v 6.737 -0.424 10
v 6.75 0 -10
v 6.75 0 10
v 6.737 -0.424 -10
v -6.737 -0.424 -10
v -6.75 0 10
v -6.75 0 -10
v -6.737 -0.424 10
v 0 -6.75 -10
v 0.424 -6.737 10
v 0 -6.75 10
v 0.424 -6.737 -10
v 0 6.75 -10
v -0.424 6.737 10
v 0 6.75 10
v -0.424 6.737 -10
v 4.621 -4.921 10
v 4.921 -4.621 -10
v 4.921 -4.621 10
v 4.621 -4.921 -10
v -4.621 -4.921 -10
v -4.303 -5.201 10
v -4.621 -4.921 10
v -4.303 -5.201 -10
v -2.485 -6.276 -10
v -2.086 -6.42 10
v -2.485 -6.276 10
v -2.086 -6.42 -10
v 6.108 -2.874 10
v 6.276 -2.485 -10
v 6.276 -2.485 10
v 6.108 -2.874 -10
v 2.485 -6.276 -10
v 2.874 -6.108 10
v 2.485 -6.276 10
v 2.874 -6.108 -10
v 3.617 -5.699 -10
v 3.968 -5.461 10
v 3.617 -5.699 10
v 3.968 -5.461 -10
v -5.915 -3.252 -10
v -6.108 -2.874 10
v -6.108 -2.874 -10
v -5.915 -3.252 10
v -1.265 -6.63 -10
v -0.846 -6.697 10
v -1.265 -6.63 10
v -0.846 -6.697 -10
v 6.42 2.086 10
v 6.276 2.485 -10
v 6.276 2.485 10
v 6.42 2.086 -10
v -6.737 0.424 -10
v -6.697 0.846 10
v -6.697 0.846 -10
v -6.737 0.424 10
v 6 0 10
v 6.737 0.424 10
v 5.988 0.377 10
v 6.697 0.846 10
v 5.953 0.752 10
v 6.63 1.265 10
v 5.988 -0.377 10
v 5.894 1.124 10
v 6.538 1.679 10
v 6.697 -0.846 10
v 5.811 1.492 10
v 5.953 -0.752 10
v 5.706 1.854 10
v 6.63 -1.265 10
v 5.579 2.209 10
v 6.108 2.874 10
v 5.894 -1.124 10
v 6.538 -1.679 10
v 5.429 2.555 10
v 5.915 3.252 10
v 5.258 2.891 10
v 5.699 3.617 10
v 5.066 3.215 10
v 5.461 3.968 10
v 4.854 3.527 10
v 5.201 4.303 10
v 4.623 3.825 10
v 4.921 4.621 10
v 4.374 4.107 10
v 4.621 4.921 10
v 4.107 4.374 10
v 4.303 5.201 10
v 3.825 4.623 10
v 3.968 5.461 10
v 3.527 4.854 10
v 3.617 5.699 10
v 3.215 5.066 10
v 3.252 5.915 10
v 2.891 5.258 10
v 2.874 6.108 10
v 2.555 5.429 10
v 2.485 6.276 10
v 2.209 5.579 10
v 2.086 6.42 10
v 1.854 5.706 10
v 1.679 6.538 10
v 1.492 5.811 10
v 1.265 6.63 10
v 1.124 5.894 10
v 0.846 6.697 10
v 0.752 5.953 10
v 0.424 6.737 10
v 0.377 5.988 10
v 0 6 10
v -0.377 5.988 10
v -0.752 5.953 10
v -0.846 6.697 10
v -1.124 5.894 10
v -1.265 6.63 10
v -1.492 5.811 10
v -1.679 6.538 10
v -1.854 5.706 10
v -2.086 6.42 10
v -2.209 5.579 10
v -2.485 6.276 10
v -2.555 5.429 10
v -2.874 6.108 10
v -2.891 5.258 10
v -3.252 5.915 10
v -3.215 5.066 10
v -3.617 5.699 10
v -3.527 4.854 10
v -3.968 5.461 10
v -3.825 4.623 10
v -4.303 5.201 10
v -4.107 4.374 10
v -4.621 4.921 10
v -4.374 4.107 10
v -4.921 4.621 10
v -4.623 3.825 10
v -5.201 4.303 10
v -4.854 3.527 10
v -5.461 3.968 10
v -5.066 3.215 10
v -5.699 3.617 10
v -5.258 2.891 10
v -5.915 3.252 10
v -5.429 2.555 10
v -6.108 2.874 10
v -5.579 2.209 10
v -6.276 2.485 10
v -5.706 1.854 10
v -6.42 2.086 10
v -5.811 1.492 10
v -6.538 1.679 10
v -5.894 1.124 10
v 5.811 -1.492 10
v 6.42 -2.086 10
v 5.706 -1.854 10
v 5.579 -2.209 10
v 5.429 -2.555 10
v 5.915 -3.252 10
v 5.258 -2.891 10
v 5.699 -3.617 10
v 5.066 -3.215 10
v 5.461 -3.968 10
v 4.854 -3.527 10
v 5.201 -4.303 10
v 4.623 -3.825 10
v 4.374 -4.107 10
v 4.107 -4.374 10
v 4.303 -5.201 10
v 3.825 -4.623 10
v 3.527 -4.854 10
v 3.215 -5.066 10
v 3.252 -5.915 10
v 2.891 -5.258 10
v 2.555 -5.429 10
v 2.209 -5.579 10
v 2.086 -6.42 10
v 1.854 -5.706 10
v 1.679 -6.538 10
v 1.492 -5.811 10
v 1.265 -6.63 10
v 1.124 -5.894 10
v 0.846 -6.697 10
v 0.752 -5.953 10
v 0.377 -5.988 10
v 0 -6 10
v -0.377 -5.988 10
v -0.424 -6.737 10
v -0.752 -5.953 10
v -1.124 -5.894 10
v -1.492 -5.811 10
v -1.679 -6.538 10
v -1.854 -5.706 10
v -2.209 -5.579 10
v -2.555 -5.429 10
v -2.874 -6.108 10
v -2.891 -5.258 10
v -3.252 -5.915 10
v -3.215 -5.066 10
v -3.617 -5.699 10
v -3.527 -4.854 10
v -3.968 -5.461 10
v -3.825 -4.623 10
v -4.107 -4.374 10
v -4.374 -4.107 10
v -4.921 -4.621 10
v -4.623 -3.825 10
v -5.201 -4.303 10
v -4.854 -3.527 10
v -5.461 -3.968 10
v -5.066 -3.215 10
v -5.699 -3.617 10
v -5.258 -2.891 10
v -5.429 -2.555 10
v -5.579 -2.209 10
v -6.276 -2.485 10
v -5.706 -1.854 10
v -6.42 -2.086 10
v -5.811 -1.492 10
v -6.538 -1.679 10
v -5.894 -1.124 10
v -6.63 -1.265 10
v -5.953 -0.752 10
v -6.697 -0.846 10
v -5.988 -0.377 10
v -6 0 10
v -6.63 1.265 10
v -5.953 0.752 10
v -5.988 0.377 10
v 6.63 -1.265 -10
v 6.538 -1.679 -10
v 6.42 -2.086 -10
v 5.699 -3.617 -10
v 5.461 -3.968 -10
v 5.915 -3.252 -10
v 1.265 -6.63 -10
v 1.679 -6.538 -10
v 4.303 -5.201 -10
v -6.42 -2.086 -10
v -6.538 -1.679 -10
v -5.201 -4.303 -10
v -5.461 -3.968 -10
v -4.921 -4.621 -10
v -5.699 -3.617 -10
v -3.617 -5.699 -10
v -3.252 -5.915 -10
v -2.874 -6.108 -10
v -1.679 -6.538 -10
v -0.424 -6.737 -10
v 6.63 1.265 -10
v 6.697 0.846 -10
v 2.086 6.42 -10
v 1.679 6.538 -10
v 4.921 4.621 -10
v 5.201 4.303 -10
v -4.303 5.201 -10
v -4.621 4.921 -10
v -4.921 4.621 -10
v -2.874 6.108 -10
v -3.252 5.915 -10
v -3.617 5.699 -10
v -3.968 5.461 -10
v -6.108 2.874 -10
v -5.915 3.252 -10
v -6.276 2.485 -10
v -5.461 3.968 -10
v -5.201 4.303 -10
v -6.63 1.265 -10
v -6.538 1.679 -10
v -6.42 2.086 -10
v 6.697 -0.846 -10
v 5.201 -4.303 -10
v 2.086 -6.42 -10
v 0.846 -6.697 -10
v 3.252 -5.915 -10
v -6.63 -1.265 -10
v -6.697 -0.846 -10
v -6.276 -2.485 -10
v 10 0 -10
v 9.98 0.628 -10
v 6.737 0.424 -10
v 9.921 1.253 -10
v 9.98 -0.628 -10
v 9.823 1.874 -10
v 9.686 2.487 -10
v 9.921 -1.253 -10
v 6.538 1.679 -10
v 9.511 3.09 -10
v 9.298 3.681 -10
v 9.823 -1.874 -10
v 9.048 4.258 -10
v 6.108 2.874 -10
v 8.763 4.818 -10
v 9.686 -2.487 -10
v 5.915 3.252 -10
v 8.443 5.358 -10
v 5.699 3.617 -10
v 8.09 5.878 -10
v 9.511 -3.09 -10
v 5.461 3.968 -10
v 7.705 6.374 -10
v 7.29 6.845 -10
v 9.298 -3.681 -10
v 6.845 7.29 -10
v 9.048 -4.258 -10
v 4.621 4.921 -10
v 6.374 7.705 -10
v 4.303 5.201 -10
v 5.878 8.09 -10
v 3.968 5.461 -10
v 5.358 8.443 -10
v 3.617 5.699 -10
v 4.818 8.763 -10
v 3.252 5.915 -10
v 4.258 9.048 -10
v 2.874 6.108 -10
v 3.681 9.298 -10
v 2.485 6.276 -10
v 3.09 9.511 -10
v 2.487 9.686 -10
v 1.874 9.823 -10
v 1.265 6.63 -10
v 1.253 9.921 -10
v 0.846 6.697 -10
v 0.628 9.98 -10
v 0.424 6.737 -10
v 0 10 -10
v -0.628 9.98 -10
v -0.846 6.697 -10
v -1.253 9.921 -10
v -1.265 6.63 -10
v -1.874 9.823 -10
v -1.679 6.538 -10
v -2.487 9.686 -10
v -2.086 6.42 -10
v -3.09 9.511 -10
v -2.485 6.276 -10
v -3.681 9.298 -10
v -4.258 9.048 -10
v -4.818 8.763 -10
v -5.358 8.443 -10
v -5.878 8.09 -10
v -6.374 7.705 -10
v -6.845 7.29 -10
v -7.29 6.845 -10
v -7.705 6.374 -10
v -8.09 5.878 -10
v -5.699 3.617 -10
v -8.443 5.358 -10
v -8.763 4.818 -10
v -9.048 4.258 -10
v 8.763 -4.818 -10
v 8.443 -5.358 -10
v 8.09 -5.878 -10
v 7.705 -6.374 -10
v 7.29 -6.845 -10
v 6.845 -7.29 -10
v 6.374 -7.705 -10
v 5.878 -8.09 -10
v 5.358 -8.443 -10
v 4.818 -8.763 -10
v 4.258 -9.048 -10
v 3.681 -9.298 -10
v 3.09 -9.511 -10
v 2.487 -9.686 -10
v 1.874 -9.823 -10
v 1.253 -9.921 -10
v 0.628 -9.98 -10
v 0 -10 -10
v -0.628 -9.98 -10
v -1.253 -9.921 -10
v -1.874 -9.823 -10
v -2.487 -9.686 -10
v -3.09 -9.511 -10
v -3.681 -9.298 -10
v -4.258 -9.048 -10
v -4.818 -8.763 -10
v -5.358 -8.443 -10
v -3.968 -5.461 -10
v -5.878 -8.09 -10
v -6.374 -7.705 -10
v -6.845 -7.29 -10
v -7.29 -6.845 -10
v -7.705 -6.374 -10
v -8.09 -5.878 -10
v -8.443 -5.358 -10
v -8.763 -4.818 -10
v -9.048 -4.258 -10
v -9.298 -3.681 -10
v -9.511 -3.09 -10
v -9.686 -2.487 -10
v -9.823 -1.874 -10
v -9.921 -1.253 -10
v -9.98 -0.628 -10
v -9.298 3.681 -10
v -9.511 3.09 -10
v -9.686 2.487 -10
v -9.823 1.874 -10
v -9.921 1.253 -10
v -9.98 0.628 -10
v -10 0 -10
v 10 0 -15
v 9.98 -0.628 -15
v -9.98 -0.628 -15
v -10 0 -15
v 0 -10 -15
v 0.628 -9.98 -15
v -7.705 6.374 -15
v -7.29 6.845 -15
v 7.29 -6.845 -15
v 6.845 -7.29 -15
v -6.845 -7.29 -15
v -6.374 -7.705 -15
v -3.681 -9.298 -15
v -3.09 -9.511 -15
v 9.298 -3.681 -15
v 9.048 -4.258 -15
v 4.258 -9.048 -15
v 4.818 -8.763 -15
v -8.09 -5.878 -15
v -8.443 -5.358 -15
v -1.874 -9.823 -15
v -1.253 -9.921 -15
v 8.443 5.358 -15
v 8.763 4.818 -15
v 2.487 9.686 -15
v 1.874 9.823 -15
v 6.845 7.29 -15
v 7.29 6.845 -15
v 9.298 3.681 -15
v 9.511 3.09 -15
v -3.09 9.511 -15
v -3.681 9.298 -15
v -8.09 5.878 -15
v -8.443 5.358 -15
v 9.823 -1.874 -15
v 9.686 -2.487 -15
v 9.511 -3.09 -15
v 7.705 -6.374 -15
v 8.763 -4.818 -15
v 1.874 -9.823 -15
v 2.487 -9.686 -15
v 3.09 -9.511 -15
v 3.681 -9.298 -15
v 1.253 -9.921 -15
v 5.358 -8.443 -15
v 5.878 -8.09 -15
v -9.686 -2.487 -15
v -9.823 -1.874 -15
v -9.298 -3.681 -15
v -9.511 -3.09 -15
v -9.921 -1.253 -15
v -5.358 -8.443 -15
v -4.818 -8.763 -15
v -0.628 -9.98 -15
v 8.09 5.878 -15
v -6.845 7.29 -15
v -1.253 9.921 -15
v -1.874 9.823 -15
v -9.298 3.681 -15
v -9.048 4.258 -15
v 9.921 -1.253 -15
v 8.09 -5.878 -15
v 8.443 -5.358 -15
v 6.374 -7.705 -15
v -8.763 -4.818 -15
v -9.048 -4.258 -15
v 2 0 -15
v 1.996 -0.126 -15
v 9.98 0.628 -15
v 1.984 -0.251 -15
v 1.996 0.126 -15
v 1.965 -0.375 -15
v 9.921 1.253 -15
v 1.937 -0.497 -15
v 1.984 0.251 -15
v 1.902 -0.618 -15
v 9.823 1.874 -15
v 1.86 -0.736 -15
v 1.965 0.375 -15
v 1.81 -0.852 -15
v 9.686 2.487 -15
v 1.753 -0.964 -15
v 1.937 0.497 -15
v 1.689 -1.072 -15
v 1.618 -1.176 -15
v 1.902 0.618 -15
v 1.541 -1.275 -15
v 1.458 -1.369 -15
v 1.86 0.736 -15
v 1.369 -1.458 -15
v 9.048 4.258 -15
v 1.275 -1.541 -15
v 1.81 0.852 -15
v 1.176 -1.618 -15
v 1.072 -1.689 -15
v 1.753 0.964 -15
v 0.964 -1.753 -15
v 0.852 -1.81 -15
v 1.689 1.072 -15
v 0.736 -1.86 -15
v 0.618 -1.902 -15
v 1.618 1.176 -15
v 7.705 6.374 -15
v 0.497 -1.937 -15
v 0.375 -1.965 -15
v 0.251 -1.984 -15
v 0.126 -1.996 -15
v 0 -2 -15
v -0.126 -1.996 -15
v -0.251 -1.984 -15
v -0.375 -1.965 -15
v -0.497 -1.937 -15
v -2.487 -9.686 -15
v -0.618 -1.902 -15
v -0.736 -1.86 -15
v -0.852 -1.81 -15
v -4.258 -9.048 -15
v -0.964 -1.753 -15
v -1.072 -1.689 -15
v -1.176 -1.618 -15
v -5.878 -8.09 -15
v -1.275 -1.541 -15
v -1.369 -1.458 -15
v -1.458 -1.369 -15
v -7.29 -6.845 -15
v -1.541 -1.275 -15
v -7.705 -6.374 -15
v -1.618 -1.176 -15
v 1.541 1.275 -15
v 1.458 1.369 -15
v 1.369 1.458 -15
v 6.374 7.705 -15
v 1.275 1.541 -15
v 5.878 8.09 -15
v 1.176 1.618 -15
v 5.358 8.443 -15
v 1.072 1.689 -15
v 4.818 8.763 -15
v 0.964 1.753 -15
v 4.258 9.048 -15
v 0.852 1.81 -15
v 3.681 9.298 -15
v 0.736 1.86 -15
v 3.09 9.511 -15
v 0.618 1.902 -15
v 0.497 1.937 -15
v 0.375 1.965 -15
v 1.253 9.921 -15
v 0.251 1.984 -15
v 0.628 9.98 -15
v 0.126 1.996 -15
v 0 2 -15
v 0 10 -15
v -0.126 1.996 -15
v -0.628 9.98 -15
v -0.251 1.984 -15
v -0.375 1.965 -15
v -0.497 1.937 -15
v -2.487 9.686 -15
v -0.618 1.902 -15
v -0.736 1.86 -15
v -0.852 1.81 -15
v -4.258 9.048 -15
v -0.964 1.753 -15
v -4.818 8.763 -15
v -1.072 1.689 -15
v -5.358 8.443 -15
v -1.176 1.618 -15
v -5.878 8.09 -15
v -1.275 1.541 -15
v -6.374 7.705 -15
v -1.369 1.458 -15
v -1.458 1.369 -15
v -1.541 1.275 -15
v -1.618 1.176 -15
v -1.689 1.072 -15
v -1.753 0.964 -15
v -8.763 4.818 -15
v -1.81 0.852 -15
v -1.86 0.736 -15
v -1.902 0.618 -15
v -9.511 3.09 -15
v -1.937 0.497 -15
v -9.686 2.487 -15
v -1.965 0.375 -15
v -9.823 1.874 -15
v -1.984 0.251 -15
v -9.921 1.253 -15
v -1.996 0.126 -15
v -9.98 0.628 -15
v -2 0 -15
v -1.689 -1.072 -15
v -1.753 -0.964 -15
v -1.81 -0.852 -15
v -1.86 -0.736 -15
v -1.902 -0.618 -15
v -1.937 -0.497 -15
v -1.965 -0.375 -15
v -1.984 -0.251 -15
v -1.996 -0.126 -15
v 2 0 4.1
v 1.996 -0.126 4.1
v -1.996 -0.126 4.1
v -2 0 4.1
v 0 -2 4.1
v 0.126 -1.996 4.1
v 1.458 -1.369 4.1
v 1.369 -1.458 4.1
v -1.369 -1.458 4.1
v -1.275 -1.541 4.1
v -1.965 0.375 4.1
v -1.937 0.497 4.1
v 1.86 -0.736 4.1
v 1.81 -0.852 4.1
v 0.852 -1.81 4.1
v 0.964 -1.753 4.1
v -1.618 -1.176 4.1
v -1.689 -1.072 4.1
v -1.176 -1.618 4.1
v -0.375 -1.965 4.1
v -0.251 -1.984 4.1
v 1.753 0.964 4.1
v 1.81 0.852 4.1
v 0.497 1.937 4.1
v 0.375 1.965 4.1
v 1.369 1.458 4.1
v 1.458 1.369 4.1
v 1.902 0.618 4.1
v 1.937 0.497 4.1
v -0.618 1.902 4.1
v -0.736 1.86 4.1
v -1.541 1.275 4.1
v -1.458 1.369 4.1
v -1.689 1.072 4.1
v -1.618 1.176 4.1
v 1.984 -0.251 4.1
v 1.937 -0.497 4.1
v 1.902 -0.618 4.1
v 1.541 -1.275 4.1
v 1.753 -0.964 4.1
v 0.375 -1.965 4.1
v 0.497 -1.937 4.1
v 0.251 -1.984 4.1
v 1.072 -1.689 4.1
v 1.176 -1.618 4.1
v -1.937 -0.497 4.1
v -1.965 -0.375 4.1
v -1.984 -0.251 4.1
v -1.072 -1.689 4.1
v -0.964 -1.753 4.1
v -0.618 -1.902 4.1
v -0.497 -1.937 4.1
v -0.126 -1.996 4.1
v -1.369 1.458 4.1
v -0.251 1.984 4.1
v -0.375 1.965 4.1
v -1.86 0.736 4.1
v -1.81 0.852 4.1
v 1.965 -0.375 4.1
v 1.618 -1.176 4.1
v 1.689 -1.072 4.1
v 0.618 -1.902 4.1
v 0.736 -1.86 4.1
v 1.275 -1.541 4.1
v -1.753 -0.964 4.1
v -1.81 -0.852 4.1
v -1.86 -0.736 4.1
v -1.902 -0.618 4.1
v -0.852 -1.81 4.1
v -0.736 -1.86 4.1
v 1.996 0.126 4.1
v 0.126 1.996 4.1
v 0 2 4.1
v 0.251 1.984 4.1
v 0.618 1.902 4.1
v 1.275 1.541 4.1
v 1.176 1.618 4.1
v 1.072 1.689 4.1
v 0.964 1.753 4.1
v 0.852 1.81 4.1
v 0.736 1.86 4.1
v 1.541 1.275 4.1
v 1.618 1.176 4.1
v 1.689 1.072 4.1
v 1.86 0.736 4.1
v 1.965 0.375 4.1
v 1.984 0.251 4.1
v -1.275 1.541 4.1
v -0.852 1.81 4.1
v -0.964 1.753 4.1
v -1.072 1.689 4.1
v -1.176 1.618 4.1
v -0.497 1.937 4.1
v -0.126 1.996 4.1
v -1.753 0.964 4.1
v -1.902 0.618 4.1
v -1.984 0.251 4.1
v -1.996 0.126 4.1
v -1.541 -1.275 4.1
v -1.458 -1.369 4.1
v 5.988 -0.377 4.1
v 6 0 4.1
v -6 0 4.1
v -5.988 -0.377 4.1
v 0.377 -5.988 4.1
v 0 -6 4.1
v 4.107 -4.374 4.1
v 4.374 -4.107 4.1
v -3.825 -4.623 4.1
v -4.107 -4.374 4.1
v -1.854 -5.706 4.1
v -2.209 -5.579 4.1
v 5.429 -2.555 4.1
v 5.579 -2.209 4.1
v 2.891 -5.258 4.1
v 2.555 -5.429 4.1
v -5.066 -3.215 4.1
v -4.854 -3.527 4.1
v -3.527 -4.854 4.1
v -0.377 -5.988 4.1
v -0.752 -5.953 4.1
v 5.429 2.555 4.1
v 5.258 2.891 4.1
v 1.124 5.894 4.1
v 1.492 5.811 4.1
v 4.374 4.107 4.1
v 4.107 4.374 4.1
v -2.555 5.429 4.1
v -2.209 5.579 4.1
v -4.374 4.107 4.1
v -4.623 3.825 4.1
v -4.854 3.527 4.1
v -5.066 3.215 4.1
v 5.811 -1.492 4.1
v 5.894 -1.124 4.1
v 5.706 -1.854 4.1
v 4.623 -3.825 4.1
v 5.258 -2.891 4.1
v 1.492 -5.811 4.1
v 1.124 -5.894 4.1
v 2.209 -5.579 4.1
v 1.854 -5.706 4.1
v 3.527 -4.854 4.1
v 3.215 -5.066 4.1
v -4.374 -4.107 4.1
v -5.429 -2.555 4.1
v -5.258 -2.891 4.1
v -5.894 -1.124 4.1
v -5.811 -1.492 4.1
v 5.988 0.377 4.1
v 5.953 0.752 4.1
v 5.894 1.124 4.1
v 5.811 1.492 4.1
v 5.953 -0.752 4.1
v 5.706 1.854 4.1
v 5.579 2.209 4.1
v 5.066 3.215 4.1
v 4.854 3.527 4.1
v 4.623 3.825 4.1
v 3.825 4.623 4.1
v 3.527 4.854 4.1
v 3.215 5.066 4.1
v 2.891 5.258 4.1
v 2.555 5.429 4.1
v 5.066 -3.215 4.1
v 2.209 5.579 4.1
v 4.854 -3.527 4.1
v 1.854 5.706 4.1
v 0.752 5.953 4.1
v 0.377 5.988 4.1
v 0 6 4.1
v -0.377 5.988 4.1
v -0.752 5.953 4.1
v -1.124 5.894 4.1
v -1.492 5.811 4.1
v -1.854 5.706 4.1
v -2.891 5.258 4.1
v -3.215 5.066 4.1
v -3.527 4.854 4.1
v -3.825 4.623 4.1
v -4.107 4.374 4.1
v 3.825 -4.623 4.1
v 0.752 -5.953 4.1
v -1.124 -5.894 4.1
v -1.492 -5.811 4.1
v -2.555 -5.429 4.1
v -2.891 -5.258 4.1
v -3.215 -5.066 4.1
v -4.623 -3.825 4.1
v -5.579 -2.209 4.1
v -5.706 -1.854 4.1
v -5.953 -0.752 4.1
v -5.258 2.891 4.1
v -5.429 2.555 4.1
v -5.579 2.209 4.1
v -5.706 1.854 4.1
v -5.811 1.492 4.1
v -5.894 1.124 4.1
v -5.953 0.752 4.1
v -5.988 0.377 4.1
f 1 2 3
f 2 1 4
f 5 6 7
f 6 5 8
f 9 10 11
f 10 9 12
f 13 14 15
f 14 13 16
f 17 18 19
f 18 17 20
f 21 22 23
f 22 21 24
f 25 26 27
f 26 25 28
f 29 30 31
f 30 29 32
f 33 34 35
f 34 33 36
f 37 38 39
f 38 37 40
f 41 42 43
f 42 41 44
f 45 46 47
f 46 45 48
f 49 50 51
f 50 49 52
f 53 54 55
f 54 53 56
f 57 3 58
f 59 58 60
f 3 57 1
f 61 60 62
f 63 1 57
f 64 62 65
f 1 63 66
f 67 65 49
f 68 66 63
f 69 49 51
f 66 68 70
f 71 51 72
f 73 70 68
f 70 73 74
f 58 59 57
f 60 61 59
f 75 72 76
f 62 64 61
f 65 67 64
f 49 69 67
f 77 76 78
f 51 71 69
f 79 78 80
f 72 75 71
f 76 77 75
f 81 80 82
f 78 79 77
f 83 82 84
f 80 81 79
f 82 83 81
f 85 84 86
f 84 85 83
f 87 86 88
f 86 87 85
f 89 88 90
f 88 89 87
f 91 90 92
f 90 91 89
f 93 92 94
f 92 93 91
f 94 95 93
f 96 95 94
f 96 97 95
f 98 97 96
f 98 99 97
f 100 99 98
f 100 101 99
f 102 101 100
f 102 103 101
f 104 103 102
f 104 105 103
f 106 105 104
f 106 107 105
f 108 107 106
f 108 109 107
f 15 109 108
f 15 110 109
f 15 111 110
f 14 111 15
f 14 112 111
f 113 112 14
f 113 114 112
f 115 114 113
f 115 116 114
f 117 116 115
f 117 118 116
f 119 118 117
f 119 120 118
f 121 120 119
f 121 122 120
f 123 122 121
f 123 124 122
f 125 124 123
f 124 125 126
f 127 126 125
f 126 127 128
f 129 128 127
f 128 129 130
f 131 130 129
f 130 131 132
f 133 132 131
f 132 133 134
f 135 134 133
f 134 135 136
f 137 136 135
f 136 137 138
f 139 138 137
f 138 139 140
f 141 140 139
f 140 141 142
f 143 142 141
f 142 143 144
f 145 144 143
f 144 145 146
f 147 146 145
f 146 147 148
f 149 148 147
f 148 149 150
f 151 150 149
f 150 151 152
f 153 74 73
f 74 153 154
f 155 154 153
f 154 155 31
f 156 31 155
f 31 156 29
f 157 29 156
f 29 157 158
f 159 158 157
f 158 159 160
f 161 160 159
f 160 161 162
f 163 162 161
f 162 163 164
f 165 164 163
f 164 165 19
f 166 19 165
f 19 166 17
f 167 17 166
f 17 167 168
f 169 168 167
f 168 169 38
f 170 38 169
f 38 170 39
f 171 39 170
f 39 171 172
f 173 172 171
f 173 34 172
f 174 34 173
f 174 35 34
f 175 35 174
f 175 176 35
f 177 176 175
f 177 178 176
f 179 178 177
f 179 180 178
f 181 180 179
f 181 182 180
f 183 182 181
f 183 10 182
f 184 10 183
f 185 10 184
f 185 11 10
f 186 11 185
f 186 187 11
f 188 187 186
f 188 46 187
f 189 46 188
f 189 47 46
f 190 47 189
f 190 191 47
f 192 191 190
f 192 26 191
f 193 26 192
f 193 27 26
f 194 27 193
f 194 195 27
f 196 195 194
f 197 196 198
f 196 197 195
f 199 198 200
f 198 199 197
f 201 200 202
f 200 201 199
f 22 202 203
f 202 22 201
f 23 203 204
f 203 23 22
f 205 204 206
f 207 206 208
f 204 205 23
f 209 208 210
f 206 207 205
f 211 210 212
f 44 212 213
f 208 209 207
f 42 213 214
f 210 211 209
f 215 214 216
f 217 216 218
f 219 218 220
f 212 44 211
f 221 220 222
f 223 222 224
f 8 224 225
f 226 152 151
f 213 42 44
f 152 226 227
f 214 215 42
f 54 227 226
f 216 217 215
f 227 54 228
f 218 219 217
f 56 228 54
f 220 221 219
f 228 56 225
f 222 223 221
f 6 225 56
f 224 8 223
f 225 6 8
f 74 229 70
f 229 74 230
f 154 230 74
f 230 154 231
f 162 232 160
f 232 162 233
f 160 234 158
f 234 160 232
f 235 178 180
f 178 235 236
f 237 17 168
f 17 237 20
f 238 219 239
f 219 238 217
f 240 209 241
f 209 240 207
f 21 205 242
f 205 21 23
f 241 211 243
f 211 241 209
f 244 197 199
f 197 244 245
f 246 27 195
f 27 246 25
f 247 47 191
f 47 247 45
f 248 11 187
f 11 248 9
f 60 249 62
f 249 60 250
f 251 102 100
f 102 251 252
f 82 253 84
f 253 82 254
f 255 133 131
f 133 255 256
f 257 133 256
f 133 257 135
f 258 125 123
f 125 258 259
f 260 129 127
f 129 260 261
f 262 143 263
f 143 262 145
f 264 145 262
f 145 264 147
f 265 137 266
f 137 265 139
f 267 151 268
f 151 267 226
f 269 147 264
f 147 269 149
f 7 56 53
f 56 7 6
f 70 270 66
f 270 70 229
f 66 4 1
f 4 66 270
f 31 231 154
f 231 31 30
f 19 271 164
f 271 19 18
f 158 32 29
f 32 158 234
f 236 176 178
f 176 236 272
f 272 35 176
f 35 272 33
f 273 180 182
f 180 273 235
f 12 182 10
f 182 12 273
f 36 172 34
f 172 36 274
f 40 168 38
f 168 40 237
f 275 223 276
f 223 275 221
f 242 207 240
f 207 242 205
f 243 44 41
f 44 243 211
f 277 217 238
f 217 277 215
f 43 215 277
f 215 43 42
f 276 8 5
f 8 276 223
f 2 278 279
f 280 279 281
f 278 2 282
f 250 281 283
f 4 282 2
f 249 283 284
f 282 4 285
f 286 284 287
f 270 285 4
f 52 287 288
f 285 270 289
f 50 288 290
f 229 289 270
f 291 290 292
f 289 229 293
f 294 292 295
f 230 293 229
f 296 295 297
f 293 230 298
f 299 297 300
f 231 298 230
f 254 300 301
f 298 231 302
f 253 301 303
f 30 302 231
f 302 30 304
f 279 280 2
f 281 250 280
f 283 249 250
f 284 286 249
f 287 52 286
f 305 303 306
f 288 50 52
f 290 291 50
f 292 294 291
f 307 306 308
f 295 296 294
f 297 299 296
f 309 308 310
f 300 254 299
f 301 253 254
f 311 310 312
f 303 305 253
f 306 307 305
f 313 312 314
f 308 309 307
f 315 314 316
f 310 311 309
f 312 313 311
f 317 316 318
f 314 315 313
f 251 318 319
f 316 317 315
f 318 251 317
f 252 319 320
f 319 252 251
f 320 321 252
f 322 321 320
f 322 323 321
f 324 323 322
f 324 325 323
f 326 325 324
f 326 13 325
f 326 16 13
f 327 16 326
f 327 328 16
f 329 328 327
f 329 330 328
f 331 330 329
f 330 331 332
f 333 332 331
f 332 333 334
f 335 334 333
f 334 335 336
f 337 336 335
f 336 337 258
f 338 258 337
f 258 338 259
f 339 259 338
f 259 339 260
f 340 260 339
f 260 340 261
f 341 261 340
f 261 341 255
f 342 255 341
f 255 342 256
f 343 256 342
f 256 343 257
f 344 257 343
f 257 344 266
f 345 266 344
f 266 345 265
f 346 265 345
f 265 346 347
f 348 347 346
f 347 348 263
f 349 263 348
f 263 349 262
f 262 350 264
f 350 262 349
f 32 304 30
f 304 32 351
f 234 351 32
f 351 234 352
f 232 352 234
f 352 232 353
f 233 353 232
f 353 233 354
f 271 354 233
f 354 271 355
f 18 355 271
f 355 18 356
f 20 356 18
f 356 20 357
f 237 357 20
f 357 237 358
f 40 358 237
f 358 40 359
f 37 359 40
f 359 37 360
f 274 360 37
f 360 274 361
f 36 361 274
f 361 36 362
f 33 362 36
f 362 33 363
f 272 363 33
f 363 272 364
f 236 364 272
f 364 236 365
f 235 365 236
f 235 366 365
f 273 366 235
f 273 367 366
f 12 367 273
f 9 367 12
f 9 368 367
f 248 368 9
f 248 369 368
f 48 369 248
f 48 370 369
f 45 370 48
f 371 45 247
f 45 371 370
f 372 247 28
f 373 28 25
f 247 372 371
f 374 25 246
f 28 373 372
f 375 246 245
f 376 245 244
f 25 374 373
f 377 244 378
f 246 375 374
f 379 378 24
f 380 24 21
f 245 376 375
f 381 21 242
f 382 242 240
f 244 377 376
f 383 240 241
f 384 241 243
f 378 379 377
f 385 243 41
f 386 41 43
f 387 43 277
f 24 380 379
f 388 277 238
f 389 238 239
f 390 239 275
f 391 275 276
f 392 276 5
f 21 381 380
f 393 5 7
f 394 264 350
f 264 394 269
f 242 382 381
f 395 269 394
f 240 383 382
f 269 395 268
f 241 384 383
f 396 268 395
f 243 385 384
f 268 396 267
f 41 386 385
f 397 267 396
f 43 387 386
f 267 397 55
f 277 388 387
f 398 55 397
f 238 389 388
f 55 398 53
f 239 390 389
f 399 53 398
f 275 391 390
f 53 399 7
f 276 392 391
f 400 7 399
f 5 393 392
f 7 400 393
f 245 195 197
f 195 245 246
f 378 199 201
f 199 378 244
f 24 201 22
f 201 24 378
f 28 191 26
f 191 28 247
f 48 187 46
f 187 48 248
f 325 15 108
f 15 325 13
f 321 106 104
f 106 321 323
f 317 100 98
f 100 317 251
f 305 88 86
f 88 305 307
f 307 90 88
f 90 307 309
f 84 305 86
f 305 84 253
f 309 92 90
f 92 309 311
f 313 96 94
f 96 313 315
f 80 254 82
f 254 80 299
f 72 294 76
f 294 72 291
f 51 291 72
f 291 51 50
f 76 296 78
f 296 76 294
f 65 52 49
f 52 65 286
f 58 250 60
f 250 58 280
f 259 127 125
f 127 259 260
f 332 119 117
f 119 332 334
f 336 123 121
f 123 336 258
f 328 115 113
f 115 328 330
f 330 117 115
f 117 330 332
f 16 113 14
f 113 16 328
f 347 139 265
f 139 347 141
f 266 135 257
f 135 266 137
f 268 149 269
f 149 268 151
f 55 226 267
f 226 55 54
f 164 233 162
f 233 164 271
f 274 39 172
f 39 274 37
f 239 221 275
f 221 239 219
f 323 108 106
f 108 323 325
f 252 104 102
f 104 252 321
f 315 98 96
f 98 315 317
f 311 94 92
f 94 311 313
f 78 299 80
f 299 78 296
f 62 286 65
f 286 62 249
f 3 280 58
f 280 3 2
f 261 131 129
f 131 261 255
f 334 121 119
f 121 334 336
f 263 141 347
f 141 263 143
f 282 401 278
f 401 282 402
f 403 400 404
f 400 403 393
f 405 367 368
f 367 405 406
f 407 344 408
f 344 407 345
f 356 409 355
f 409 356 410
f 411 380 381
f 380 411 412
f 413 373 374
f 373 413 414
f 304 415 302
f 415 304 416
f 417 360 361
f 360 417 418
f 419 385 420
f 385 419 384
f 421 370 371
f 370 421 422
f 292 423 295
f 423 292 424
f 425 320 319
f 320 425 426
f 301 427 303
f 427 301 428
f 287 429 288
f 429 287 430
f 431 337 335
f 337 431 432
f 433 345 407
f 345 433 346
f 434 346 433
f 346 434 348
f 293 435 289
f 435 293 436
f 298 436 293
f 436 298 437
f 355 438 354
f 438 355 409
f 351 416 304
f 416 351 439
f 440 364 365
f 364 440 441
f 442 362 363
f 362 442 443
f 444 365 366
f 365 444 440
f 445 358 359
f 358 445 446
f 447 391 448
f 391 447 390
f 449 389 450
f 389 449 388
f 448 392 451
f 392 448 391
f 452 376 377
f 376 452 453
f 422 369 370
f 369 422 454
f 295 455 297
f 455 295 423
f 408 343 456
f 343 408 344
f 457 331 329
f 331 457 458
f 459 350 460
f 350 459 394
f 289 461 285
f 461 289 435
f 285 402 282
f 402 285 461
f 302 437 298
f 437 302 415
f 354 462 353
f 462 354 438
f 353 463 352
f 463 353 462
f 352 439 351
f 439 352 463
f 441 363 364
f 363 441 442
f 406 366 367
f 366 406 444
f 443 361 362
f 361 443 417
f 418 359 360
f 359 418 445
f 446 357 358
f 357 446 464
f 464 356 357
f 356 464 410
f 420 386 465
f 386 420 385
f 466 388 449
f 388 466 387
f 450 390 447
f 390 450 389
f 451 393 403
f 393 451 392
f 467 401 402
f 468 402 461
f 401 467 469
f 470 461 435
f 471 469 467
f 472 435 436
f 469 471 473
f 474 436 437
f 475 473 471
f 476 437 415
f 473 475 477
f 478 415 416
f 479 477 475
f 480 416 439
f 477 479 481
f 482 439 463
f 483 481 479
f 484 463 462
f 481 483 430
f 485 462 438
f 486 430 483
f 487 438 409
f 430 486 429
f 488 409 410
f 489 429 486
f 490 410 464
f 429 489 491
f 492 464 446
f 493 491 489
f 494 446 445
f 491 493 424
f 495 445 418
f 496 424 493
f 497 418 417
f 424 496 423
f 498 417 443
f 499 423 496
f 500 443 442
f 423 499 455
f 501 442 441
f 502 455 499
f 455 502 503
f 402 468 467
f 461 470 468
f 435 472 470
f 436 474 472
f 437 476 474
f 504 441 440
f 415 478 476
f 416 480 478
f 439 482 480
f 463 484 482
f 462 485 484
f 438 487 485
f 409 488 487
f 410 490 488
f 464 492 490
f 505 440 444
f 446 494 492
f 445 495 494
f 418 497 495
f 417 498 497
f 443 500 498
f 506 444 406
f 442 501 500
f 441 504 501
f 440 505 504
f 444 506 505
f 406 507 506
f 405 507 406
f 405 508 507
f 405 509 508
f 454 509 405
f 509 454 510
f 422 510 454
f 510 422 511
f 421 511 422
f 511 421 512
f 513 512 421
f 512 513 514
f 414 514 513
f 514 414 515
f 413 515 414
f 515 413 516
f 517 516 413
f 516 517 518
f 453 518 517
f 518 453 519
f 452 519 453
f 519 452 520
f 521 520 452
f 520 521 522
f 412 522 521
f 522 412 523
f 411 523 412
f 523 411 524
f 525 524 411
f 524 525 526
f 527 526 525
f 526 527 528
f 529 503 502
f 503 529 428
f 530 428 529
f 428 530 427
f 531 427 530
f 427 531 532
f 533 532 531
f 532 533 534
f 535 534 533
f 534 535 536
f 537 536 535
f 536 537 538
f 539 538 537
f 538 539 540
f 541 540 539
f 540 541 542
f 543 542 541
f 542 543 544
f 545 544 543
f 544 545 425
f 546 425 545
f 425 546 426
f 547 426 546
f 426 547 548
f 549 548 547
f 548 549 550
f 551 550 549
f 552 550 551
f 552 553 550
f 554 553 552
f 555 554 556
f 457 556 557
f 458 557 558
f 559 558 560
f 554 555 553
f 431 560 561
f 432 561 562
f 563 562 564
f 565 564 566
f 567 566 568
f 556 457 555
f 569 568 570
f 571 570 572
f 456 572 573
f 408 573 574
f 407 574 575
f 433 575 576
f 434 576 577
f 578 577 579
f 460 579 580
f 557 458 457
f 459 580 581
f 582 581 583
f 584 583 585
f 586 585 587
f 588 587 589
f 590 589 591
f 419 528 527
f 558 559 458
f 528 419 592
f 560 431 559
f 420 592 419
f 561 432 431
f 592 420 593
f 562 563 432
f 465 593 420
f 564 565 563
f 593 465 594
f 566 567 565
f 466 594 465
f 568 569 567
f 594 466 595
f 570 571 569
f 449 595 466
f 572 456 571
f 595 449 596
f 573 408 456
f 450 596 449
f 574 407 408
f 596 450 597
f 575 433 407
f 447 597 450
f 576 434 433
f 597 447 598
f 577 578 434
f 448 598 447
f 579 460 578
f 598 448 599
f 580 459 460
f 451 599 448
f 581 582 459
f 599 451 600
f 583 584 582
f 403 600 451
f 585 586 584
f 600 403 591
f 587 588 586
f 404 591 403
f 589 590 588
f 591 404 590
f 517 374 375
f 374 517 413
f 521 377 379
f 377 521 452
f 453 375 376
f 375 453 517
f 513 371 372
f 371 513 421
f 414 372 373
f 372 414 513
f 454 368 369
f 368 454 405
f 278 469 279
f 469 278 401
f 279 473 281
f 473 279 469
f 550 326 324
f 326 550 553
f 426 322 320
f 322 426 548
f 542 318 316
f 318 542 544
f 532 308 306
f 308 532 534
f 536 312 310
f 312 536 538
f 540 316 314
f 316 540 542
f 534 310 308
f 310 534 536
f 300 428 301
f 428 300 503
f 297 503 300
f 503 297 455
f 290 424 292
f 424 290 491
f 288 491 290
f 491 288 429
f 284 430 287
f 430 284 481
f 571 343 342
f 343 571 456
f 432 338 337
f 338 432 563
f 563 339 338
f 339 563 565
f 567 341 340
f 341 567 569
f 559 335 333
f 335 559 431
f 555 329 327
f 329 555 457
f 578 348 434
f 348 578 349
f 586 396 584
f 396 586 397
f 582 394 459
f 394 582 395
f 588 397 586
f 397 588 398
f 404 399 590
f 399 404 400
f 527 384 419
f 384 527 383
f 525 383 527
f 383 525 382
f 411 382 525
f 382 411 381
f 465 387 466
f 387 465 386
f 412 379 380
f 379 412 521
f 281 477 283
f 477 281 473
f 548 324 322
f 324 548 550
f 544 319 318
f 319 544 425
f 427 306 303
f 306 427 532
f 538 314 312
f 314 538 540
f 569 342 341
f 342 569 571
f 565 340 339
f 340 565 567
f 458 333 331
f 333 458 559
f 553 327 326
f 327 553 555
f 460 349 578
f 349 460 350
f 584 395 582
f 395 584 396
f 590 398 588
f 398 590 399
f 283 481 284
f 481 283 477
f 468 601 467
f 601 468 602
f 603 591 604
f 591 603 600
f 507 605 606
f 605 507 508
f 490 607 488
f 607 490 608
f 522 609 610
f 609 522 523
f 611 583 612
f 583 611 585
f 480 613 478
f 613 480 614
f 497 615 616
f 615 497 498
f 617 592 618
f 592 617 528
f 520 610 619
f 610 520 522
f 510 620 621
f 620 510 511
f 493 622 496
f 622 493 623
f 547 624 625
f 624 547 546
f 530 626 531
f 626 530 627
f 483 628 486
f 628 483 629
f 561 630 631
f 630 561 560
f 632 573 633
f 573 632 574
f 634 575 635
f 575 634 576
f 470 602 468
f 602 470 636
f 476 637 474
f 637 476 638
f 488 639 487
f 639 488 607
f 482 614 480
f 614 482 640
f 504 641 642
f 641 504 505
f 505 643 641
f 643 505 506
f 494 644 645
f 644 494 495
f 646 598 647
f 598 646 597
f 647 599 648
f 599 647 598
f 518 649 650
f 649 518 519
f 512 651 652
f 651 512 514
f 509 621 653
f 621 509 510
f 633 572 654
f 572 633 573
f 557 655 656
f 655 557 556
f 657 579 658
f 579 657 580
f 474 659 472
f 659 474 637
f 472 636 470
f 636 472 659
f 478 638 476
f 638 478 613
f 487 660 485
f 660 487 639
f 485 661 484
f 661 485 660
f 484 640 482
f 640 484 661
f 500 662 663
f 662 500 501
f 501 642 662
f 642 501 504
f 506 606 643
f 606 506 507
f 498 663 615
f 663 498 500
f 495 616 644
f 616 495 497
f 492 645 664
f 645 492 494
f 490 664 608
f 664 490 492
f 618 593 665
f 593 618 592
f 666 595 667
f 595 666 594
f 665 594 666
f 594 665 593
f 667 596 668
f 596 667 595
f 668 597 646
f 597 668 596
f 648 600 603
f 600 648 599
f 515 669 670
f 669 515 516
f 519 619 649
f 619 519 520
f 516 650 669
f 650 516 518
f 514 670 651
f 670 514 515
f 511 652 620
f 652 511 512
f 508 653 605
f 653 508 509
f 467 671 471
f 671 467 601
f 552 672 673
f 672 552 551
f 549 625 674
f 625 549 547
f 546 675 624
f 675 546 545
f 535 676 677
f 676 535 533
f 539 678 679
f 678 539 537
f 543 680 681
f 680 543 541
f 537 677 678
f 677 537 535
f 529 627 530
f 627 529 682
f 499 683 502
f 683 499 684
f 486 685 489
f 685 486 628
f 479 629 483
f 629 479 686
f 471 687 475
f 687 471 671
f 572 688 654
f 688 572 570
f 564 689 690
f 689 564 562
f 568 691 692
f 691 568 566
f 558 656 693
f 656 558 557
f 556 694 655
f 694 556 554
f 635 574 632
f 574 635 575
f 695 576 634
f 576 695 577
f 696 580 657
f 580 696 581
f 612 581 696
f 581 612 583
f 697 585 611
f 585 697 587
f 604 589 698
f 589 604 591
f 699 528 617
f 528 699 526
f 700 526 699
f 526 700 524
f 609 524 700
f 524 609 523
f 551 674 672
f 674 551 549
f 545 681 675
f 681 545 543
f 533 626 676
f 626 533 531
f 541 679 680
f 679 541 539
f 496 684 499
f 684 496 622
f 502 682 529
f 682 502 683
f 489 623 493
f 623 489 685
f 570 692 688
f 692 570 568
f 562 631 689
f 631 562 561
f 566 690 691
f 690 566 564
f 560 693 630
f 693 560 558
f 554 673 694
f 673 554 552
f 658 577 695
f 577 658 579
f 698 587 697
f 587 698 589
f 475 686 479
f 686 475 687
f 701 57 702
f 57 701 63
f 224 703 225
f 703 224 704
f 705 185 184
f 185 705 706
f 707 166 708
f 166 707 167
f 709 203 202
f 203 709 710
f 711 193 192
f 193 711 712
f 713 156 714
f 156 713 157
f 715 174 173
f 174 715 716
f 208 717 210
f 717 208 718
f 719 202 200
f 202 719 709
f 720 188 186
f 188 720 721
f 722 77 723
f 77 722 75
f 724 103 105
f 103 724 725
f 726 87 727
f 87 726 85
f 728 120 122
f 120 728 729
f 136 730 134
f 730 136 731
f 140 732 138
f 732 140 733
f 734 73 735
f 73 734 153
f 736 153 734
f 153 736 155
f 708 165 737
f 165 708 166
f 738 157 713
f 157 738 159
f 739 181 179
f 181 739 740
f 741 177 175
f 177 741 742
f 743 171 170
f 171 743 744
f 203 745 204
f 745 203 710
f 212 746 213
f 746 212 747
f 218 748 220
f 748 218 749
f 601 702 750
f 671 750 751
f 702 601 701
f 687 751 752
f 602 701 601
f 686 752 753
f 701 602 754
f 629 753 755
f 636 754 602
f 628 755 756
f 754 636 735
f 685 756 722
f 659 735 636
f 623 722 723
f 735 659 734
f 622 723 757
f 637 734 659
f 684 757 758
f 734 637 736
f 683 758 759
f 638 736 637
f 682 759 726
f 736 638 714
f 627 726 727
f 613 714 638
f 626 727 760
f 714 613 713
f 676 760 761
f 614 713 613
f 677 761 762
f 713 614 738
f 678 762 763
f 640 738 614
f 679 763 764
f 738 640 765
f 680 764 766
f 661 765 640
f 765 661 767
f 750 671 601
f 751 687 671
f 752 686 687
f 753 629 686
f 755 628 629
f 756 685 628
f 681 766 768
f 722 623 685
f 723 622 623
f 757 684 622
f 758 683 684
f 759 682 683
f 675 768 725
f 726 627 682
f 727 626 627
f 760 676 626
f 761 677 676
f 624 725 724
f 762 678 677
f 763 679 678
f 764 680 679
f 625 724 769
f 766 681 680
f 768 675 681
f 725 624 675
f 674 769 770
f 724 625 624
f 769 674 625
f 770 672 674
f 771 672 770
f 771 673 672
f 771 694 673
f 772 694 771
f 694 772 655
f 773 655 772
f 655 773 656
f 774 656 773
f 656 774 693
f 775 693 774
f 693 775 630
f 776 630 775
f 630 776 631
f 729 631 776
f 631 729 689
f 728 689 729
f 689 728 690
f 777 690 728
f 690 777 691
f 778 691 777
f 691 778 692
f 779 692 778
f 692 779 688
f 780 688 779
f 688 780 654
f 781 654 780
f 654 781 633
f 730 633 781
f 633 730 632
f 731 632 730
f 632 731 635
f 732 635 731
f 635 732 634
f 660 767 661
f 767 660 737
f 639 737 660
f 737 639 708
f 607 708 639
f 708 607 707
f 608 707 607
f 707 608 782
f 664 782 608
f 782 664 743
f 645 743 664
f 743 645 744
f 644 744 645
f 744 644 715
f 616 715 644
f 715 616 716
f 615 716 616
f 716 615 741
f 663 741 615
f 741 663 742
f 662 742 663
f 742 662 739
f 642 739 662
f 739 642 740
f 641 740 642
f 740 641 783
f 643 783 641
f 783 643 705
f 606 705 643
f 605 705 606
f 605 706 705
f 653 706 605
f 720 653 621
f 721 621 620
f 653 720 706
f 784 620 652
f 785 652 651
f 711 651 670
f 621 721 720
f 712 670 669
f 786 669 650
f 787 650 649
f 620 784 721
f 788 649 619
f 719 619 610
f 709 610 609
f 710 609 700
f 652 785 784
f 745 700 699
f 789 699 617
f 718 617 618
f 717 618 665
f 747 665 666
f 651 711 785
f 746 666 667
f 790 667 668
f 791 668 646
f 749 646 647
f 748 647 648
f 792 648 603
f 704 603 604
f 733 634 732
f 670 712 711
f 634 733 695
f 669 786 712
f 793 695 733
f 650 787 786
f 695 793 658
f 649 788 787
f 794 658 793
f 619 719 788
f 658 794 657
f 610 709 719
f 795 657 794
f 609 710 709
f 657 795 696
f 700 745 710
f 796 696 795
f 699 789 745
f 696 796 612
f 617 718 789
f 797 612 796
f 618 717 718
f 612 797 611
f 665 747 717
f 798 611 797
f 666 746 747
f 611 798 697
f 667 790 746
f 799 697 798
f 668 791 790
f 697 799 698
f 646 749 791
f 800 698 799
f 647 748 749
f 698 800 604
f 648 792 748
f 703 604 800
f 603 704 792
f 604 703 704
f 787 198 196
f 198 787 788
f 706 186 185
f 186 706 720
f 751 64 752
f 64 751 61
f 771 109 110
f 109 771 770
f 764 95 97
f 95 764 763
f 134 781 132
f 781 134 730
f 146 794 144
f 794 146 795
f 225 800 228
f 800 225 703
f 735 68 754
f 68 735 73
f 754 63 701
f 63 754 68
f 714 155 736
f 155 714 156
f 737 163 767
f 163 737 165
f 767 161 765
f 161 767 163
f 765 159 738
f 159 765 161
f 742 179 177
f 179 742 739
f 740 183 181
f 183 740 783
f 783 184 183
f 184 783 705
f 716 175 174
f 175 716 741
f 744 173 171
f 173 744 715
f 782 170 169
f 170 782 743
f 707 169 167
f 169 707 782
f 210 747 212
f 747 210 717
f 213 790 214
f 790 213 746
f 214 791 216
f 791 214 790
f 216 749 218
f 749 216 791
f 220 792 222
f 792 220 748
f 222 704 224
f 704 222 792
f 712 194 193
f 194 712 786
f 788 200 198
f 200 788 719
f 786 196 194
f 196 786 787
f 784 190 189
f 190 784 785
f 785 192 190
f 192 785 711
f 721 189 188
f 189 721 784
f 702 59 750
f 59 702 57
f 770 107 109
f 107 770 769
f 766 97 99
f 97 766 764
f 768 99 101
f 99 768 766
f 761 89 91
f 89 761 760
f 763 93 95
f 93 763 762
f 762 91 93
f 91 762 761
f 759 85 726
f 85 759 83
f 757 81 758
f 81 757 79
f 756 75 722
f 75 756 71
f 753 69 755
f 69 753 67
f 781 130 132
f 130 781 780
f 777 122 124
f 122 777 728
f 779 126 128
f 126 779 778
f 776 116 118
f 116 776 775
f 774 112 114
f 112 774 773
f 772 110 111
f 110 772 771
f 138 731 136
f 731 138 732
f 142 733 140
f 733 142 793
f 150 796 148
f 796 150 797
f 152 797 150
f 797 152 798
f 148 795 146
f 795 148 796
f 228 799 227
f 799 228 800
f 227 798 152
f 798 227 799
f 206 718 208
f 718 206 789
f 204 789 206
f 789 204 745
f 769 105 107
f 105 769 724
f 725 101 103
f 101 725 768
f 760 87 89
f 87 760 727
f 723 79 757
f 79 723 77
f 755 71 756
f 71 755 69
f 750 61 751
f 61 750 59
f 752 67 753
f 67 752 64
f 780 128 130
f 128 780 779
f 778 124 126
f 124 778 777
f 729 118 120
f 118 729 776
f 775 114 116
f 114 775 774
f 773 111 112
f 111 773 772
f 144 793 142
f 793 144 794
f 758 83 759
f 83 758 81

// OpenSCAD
$shaftSize = 13.5;
$shaftLength = 20;

$retainerSize = 20;
$retainerLength = 5;

$magnetDiameter = 12;
$magnetThickness = 6;
$magnetPressoutHoleSize = 4;
$magnetDistanceFromEnd = -0.1;

{}

rotate([180, 0, 0])
difference(){
    // The main shaft and the retaining cap
    group(){
        // Main shaft
        color("red")
        cylinder(h = $shaftLength, r = $shaftSize / 2, center = true, $fn = 100);

        // Retainer
        $offsetFromCenterToEnd = $shaftLength / 2 + $retainerLength / 2;
        color("green")
        translate([0, 0, $offsetFromCenterToEnd])
        cylinder(h = $retainerLength, r = $retainerSize / 2, center = true, $fn = 100);
    }

    // This hole is intended to be used to press out the magnet if the 
    // tool needs to be replaced ... I came across a design for dust 
    // collector fittings where the designer did this, and I like it 
    // more than glue.
    $magnetPressoutHole = ($shaftLength + $retainerLength) * 2;
    cylinder(h = $magnetPressoutHole, r = $magnetPressoutHoleSize / 2, center = true, $fn = 100);

    // Magnet Cutout
    $offsetFromCenterToMagnetPlacement = -$shaftLength / 2 + $magnetThickness / 2 + $magnetDistanceFromEnd;
    translate([0, 0, $offsetFromCenterToMagnetPlacement])
    cylinder(h = $magnetThickness, r = $magnetDiameter / 2, center = true, $fn = 100);
}
